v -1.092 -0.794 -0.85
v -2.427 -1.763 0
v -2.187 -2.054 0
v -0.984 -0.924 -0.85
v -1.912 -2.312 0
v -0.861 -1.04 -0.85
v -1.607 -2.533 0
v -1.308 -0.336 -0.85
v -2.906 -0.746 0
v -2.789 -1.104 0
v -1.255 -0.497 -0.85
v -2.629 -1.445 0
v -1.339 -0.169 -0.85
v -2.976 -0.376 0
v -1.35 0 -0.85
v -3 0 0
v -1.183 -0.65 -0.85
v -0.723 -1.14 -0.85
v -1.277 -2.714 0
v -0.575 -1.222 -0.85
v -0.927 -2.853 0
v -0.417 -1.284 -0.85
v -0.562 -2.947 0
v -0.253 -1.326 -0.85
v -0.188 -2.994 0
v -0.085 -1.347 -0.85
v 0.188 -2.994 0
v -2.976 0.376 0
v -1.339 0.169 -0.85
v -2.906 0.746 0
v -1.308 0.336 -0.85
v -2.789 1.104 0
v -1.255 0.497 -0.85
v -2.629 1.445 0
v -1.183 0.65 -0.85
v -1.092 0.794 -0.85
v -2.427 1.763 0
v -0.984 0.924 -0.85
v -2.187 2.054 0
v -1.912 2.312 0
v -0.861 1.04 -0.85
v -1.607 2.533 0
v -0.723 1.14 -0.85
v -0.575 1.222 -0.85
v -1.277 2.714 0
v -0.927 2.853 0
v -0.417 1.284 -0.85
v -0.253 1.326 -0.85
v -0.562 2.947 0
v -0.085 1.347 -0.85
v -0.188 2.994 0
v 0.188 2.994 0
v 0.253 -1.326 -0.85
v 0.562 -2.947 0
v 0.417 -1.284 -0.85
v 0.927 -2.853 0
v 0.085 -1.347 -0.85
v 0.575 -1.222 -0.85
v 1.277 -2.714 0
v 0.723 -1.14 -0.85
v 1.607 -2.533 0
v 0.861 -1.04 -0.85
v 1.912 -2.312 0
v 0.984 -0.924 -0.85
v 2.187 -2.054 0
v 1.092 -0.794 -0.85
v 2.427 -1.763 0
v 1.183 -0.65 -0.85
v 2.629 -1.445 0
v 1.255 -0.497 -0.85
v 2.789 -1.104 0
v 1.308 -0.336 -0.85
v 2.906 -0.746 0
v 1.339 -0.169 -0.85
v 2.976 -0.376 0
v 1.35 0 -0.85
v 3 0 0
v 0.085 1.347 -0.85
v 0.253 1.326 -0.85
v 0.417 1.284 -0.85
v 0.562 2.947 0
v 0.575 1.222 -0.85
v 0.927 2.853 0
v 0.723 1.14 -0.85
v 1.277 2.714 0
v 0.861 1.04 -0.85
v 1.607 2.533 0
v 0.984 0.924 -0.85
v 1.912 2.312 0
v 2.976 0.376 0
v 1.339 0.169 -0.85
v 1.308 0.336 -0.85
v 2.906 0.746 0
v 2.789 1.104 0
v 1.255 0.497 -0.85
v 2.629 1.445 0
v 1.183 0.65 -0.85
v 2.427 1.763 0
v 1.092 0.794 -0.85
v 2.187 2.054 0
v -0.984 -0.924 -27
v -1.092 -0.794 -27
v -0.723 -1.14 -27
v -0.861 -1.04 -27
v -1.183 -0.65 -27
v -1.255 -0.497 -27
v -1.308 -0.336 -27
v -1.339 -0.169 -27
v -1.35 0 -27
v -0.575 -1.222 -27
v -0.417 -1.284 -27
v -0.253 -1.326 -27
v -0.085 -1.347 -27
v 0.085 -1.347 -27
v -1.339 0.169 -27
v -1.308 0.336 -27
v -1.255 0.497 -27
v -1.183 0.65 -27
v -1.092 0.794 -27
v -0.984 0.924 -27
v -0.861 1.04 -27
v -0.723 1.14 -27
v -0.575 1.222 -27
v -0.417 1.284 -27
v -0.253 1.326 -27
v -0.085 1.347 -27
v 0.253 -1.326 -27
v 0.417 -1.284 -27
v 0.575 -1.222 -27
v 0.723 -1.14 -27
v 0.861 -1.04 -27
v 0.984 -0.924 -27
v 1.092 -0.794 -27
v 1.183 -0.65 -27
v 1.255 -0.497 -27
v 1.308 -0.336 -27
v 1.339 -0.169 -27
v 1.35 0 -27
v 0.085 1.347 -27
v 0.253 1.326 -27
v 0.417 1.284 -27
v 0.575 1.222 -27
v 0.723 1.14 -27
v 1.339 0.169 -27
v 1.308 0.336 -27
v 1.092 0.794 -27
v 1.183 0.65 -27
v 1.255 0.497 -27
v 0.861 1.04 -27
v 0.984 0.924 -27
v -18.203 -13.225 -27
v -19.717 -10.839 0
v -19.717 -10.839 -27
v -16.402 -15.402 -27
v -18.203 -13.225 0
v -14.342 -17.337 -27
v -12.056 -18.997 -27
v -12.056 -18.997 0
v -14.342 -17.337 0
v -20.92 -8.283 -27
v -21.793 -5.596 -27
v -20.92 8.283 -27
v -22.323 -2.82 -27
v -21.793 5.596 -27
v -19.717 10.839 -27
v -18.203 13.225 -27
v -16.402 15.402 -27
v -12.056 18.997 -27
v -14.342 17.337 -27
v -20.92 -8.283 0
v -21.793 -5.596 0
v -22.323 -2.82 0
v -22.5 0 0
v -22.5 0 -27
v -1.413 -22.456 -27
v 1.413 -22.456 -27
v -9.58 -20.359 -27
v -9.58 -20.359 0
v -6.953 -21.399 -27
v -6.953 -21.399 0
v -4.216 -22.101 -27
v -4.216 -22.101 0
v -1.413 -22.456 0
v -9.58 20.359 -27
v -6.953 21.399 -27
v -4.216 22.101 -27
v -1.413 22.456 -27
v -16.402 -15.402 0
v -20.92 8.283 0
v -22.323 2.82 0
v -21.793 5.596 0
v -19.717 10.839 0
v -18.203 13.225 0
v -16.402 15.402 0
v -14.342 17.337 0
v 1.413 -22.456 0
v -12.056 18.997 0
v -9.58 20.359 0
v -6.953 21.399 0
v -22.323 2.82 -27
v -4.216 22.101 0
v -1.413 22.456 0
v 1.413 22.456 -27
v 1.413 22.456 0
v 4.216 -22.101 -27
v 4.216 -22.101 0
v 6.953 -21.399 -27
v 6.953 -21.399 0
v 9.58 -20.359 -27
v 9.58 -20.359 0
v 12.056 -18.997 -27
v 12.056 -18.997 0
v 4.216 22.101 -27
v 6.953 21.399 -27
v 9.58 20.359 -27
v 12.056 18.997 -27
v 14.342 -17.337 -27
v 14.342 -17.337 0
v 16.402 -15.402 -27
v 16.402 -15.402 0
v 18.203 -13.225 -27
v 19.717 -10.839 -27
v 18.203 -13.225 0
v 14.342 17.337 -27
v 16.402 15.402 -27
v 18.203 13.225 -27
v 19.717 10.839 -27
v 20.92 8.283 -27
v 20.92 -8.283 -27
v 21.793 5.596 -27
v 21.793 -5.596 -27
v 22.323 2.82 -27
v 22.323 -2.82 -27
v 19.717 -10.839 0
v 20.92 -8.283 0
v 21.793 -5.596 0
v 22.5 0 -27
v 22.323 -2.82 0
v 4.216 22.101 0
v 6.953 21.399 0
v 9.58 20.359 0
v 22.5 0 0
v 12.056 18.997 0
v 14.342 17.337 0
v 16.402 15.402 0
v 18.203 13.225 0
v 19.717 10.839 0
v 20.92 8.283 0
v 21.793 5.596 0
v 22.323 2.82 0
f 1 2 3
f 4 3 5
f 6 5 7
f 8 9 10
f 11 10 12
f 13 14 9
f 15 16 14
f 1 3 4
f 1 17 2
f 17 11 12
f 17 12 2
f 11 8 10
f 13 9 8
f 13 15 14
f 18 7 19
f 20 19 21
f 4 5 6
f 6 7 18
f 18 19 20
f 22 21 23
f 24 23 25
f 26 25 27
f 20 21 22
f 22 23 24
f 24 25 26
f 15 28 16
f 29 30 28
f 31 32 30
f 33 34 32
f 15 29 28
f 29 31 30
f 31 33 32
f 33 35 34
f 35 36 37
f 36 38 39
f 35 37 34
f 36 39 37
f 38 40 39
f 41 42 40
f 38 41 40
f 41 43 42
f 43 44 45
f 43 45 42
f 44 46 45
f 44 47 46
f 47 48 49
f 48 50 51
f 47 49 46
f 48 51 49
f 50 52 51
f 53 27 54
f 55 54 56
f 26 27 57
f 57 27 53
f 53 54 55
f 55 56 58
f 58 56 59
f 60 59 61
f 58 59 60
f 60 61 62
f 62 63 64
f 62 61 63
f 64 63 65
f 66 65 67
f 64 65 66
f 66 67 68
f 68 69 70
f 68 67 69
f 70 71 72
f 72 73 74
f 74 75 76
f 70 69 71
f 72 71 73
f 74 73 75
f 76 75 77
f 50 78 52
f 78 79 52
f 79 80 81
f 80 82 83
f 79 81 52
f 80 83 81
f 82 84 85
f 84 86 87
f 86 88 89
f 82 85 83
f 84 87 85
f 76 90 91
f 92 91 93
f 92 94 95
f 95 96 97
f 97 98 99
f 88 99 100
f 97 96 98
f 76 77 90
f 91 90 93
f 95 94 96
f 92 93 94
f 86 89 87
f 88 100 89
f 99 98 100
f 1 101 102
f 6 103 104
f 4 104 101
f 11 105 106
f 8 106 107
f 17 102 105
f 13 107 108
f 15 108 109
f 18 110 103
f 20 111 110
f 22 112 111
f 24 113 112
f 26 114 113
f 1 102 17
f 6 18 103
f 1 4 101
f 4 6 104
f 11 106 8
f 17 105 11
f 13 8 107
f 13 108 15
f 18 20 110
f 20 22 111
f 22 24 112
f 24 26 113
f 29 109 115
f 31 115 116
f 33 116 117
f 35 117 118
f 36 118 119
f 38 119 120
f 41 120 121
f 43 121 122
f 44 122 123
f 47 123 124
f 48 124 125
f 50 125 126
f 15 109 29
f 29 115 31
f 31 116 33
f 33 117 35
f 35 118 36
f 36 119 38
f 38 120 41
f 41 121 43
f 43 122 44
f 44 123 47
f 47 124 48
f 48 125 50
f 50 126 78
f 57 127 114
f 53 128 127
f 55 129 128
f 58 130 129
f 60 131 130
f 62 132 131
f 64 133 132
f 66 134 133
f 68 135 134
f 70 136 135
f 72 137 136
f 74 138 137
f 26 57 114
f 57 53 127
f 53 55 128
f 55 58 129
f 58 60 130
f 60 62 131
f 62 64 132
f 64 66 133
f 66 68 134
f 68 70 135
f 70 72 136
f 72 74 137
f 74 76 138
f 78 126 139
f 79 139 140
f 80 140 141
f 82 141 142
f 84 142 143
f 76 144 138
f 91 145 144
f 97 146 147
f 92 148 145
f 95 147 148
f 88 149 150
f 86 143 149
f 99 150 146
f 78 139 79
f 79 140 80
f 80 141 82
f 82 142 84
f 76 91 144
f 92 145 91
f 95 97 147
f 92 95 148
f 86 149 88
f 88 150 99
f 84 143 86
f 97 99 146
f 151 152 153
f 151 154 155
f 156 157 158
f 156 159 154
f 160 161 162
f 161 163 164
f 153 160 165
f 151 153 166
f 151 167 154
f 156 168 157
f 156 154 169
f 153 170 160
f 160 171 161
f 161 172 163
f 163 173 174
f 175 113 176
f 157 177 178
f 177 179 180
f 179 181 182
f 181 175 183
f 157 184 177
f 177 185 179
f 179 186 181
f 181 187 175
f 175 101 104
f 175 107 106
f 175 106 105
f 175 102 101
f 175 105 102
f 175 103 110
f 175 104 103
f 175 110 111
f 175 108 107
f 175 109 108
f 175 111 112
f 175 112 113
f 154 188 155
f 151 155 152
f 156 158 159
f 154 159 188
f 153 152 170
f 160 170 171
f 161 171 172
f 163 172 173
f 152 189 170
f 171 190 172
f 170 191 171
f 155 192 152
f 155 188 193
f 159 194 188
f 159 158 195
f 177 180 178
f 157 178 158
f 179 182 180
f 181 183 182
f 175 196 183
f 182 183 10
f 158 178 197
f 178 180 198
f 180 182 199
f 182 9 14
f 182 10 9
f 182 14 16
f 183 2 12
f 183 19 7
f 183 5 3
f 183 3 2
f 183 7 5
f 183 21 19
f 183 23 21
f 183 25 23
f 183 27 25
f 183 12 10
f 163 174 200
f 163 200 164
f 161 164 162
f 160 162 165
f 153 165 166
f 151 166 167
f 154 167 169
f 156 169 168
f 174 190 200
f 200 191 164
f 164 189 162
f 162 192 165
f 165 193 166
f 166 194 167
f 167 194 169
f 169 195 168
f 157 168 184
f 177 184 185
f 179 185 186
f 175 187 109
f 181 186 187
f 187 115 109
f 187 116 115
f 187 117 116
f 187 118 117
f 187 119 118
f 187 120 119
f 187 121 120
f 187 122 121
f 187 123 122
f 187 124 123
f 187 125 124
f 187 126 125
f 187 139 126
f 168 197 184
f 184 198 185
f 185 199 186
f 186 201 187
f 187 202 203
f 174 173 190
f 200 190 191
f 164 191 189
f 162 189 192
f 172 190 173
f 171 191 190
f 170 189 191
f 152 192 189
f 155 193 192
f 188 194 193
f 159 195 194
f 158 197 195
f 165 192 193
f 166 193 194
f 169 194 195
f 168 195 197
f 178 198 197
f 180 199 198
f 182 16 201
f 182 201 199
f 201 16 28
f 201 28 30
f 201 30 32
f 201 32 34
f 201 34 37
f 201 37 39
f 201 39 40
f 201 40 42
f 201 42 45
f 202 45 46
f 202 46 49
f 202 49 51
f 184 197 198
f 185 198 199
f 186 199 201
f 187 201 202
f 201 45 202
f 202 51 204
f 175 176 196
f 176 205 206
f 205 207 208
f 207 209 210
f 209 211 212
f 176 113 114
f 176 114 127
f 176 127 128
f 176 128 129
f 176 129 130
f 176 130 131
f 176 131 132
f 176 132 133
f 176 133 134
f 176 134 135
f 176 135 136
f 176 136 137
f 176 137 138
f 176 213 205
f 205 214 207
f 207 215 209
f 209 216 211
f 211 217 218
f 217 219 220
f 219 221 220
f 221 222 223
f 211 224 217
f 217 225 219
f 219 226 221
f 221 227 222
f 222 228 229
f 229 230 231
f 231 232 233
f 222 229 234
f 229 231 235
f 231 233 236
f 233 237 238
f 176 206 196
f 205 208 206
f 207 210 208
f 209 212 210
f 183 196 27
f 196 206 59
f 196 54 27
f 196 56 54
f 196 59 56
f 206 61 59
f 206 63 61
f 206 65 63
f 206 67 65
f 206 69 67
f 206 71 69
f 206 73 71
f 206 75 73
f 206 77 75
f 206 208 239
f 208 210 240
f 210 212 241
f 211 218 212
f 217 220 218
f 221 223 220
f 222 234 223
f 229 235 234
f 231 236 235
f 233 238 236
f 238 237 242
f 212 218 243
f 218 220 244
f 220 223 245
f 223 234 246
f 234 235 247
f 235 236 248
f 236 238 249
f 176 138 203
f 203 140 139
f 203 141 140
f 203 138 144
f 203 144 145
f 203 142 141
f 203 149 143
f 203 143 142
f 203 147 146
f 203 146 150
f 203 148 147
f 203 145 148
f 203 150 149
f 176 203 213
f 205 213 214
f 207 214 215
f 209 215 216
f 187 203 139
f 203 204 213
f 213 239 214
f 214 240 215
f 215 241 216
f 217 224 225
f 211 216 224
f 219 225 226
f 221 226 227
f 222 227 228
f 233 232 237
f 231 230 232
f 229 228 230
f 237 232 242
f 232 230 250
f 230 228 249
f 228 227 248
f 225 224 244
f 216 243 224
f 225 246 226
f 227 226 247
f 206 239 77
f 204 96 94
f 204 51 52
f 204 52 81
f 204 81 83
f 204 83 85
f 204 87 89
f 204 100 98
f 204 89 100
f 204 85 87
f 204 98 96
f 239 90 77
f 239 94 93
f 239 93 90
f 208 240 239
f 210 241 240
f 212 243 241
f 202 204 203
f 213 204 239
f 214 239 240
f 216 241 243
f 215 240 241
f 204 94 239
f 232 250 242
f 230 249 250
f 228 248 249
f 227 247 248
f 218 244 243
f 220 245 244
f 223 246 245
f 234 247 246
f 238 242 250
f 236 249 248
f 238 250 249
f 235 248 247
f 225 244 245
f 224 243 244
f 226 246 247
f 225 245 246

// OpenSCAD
$fn = 50;

difference() {
	union() {
		translate(v = [0, 0, -27.0]) {
			cylinder(h = 27, r = 22.5);
		}
	}
	union() {
		translate(v = [0, 0, 0]) {
			rotate(a = [0, 0, 0]) {
				difference() {
					union() {
						translate(v = [0, 0, -30.0]) {
							cylinder(h = 30, r = 1.0);
						}
						translate(v = [0, 0, -0.85]) {
							cylinder(h = 0.85, r1 = 1.35, r2 = 3.0);
						}
						translate(v = [0, 0, -30.0]) {
							cylinder(h = 30, r = 1.35);
						}
						translate(v = [0, 0, -30.0]) {
							cylinder(h = 30, r = 1.0);
						}
					}
					union();
				}
			}
		}
	}
}
